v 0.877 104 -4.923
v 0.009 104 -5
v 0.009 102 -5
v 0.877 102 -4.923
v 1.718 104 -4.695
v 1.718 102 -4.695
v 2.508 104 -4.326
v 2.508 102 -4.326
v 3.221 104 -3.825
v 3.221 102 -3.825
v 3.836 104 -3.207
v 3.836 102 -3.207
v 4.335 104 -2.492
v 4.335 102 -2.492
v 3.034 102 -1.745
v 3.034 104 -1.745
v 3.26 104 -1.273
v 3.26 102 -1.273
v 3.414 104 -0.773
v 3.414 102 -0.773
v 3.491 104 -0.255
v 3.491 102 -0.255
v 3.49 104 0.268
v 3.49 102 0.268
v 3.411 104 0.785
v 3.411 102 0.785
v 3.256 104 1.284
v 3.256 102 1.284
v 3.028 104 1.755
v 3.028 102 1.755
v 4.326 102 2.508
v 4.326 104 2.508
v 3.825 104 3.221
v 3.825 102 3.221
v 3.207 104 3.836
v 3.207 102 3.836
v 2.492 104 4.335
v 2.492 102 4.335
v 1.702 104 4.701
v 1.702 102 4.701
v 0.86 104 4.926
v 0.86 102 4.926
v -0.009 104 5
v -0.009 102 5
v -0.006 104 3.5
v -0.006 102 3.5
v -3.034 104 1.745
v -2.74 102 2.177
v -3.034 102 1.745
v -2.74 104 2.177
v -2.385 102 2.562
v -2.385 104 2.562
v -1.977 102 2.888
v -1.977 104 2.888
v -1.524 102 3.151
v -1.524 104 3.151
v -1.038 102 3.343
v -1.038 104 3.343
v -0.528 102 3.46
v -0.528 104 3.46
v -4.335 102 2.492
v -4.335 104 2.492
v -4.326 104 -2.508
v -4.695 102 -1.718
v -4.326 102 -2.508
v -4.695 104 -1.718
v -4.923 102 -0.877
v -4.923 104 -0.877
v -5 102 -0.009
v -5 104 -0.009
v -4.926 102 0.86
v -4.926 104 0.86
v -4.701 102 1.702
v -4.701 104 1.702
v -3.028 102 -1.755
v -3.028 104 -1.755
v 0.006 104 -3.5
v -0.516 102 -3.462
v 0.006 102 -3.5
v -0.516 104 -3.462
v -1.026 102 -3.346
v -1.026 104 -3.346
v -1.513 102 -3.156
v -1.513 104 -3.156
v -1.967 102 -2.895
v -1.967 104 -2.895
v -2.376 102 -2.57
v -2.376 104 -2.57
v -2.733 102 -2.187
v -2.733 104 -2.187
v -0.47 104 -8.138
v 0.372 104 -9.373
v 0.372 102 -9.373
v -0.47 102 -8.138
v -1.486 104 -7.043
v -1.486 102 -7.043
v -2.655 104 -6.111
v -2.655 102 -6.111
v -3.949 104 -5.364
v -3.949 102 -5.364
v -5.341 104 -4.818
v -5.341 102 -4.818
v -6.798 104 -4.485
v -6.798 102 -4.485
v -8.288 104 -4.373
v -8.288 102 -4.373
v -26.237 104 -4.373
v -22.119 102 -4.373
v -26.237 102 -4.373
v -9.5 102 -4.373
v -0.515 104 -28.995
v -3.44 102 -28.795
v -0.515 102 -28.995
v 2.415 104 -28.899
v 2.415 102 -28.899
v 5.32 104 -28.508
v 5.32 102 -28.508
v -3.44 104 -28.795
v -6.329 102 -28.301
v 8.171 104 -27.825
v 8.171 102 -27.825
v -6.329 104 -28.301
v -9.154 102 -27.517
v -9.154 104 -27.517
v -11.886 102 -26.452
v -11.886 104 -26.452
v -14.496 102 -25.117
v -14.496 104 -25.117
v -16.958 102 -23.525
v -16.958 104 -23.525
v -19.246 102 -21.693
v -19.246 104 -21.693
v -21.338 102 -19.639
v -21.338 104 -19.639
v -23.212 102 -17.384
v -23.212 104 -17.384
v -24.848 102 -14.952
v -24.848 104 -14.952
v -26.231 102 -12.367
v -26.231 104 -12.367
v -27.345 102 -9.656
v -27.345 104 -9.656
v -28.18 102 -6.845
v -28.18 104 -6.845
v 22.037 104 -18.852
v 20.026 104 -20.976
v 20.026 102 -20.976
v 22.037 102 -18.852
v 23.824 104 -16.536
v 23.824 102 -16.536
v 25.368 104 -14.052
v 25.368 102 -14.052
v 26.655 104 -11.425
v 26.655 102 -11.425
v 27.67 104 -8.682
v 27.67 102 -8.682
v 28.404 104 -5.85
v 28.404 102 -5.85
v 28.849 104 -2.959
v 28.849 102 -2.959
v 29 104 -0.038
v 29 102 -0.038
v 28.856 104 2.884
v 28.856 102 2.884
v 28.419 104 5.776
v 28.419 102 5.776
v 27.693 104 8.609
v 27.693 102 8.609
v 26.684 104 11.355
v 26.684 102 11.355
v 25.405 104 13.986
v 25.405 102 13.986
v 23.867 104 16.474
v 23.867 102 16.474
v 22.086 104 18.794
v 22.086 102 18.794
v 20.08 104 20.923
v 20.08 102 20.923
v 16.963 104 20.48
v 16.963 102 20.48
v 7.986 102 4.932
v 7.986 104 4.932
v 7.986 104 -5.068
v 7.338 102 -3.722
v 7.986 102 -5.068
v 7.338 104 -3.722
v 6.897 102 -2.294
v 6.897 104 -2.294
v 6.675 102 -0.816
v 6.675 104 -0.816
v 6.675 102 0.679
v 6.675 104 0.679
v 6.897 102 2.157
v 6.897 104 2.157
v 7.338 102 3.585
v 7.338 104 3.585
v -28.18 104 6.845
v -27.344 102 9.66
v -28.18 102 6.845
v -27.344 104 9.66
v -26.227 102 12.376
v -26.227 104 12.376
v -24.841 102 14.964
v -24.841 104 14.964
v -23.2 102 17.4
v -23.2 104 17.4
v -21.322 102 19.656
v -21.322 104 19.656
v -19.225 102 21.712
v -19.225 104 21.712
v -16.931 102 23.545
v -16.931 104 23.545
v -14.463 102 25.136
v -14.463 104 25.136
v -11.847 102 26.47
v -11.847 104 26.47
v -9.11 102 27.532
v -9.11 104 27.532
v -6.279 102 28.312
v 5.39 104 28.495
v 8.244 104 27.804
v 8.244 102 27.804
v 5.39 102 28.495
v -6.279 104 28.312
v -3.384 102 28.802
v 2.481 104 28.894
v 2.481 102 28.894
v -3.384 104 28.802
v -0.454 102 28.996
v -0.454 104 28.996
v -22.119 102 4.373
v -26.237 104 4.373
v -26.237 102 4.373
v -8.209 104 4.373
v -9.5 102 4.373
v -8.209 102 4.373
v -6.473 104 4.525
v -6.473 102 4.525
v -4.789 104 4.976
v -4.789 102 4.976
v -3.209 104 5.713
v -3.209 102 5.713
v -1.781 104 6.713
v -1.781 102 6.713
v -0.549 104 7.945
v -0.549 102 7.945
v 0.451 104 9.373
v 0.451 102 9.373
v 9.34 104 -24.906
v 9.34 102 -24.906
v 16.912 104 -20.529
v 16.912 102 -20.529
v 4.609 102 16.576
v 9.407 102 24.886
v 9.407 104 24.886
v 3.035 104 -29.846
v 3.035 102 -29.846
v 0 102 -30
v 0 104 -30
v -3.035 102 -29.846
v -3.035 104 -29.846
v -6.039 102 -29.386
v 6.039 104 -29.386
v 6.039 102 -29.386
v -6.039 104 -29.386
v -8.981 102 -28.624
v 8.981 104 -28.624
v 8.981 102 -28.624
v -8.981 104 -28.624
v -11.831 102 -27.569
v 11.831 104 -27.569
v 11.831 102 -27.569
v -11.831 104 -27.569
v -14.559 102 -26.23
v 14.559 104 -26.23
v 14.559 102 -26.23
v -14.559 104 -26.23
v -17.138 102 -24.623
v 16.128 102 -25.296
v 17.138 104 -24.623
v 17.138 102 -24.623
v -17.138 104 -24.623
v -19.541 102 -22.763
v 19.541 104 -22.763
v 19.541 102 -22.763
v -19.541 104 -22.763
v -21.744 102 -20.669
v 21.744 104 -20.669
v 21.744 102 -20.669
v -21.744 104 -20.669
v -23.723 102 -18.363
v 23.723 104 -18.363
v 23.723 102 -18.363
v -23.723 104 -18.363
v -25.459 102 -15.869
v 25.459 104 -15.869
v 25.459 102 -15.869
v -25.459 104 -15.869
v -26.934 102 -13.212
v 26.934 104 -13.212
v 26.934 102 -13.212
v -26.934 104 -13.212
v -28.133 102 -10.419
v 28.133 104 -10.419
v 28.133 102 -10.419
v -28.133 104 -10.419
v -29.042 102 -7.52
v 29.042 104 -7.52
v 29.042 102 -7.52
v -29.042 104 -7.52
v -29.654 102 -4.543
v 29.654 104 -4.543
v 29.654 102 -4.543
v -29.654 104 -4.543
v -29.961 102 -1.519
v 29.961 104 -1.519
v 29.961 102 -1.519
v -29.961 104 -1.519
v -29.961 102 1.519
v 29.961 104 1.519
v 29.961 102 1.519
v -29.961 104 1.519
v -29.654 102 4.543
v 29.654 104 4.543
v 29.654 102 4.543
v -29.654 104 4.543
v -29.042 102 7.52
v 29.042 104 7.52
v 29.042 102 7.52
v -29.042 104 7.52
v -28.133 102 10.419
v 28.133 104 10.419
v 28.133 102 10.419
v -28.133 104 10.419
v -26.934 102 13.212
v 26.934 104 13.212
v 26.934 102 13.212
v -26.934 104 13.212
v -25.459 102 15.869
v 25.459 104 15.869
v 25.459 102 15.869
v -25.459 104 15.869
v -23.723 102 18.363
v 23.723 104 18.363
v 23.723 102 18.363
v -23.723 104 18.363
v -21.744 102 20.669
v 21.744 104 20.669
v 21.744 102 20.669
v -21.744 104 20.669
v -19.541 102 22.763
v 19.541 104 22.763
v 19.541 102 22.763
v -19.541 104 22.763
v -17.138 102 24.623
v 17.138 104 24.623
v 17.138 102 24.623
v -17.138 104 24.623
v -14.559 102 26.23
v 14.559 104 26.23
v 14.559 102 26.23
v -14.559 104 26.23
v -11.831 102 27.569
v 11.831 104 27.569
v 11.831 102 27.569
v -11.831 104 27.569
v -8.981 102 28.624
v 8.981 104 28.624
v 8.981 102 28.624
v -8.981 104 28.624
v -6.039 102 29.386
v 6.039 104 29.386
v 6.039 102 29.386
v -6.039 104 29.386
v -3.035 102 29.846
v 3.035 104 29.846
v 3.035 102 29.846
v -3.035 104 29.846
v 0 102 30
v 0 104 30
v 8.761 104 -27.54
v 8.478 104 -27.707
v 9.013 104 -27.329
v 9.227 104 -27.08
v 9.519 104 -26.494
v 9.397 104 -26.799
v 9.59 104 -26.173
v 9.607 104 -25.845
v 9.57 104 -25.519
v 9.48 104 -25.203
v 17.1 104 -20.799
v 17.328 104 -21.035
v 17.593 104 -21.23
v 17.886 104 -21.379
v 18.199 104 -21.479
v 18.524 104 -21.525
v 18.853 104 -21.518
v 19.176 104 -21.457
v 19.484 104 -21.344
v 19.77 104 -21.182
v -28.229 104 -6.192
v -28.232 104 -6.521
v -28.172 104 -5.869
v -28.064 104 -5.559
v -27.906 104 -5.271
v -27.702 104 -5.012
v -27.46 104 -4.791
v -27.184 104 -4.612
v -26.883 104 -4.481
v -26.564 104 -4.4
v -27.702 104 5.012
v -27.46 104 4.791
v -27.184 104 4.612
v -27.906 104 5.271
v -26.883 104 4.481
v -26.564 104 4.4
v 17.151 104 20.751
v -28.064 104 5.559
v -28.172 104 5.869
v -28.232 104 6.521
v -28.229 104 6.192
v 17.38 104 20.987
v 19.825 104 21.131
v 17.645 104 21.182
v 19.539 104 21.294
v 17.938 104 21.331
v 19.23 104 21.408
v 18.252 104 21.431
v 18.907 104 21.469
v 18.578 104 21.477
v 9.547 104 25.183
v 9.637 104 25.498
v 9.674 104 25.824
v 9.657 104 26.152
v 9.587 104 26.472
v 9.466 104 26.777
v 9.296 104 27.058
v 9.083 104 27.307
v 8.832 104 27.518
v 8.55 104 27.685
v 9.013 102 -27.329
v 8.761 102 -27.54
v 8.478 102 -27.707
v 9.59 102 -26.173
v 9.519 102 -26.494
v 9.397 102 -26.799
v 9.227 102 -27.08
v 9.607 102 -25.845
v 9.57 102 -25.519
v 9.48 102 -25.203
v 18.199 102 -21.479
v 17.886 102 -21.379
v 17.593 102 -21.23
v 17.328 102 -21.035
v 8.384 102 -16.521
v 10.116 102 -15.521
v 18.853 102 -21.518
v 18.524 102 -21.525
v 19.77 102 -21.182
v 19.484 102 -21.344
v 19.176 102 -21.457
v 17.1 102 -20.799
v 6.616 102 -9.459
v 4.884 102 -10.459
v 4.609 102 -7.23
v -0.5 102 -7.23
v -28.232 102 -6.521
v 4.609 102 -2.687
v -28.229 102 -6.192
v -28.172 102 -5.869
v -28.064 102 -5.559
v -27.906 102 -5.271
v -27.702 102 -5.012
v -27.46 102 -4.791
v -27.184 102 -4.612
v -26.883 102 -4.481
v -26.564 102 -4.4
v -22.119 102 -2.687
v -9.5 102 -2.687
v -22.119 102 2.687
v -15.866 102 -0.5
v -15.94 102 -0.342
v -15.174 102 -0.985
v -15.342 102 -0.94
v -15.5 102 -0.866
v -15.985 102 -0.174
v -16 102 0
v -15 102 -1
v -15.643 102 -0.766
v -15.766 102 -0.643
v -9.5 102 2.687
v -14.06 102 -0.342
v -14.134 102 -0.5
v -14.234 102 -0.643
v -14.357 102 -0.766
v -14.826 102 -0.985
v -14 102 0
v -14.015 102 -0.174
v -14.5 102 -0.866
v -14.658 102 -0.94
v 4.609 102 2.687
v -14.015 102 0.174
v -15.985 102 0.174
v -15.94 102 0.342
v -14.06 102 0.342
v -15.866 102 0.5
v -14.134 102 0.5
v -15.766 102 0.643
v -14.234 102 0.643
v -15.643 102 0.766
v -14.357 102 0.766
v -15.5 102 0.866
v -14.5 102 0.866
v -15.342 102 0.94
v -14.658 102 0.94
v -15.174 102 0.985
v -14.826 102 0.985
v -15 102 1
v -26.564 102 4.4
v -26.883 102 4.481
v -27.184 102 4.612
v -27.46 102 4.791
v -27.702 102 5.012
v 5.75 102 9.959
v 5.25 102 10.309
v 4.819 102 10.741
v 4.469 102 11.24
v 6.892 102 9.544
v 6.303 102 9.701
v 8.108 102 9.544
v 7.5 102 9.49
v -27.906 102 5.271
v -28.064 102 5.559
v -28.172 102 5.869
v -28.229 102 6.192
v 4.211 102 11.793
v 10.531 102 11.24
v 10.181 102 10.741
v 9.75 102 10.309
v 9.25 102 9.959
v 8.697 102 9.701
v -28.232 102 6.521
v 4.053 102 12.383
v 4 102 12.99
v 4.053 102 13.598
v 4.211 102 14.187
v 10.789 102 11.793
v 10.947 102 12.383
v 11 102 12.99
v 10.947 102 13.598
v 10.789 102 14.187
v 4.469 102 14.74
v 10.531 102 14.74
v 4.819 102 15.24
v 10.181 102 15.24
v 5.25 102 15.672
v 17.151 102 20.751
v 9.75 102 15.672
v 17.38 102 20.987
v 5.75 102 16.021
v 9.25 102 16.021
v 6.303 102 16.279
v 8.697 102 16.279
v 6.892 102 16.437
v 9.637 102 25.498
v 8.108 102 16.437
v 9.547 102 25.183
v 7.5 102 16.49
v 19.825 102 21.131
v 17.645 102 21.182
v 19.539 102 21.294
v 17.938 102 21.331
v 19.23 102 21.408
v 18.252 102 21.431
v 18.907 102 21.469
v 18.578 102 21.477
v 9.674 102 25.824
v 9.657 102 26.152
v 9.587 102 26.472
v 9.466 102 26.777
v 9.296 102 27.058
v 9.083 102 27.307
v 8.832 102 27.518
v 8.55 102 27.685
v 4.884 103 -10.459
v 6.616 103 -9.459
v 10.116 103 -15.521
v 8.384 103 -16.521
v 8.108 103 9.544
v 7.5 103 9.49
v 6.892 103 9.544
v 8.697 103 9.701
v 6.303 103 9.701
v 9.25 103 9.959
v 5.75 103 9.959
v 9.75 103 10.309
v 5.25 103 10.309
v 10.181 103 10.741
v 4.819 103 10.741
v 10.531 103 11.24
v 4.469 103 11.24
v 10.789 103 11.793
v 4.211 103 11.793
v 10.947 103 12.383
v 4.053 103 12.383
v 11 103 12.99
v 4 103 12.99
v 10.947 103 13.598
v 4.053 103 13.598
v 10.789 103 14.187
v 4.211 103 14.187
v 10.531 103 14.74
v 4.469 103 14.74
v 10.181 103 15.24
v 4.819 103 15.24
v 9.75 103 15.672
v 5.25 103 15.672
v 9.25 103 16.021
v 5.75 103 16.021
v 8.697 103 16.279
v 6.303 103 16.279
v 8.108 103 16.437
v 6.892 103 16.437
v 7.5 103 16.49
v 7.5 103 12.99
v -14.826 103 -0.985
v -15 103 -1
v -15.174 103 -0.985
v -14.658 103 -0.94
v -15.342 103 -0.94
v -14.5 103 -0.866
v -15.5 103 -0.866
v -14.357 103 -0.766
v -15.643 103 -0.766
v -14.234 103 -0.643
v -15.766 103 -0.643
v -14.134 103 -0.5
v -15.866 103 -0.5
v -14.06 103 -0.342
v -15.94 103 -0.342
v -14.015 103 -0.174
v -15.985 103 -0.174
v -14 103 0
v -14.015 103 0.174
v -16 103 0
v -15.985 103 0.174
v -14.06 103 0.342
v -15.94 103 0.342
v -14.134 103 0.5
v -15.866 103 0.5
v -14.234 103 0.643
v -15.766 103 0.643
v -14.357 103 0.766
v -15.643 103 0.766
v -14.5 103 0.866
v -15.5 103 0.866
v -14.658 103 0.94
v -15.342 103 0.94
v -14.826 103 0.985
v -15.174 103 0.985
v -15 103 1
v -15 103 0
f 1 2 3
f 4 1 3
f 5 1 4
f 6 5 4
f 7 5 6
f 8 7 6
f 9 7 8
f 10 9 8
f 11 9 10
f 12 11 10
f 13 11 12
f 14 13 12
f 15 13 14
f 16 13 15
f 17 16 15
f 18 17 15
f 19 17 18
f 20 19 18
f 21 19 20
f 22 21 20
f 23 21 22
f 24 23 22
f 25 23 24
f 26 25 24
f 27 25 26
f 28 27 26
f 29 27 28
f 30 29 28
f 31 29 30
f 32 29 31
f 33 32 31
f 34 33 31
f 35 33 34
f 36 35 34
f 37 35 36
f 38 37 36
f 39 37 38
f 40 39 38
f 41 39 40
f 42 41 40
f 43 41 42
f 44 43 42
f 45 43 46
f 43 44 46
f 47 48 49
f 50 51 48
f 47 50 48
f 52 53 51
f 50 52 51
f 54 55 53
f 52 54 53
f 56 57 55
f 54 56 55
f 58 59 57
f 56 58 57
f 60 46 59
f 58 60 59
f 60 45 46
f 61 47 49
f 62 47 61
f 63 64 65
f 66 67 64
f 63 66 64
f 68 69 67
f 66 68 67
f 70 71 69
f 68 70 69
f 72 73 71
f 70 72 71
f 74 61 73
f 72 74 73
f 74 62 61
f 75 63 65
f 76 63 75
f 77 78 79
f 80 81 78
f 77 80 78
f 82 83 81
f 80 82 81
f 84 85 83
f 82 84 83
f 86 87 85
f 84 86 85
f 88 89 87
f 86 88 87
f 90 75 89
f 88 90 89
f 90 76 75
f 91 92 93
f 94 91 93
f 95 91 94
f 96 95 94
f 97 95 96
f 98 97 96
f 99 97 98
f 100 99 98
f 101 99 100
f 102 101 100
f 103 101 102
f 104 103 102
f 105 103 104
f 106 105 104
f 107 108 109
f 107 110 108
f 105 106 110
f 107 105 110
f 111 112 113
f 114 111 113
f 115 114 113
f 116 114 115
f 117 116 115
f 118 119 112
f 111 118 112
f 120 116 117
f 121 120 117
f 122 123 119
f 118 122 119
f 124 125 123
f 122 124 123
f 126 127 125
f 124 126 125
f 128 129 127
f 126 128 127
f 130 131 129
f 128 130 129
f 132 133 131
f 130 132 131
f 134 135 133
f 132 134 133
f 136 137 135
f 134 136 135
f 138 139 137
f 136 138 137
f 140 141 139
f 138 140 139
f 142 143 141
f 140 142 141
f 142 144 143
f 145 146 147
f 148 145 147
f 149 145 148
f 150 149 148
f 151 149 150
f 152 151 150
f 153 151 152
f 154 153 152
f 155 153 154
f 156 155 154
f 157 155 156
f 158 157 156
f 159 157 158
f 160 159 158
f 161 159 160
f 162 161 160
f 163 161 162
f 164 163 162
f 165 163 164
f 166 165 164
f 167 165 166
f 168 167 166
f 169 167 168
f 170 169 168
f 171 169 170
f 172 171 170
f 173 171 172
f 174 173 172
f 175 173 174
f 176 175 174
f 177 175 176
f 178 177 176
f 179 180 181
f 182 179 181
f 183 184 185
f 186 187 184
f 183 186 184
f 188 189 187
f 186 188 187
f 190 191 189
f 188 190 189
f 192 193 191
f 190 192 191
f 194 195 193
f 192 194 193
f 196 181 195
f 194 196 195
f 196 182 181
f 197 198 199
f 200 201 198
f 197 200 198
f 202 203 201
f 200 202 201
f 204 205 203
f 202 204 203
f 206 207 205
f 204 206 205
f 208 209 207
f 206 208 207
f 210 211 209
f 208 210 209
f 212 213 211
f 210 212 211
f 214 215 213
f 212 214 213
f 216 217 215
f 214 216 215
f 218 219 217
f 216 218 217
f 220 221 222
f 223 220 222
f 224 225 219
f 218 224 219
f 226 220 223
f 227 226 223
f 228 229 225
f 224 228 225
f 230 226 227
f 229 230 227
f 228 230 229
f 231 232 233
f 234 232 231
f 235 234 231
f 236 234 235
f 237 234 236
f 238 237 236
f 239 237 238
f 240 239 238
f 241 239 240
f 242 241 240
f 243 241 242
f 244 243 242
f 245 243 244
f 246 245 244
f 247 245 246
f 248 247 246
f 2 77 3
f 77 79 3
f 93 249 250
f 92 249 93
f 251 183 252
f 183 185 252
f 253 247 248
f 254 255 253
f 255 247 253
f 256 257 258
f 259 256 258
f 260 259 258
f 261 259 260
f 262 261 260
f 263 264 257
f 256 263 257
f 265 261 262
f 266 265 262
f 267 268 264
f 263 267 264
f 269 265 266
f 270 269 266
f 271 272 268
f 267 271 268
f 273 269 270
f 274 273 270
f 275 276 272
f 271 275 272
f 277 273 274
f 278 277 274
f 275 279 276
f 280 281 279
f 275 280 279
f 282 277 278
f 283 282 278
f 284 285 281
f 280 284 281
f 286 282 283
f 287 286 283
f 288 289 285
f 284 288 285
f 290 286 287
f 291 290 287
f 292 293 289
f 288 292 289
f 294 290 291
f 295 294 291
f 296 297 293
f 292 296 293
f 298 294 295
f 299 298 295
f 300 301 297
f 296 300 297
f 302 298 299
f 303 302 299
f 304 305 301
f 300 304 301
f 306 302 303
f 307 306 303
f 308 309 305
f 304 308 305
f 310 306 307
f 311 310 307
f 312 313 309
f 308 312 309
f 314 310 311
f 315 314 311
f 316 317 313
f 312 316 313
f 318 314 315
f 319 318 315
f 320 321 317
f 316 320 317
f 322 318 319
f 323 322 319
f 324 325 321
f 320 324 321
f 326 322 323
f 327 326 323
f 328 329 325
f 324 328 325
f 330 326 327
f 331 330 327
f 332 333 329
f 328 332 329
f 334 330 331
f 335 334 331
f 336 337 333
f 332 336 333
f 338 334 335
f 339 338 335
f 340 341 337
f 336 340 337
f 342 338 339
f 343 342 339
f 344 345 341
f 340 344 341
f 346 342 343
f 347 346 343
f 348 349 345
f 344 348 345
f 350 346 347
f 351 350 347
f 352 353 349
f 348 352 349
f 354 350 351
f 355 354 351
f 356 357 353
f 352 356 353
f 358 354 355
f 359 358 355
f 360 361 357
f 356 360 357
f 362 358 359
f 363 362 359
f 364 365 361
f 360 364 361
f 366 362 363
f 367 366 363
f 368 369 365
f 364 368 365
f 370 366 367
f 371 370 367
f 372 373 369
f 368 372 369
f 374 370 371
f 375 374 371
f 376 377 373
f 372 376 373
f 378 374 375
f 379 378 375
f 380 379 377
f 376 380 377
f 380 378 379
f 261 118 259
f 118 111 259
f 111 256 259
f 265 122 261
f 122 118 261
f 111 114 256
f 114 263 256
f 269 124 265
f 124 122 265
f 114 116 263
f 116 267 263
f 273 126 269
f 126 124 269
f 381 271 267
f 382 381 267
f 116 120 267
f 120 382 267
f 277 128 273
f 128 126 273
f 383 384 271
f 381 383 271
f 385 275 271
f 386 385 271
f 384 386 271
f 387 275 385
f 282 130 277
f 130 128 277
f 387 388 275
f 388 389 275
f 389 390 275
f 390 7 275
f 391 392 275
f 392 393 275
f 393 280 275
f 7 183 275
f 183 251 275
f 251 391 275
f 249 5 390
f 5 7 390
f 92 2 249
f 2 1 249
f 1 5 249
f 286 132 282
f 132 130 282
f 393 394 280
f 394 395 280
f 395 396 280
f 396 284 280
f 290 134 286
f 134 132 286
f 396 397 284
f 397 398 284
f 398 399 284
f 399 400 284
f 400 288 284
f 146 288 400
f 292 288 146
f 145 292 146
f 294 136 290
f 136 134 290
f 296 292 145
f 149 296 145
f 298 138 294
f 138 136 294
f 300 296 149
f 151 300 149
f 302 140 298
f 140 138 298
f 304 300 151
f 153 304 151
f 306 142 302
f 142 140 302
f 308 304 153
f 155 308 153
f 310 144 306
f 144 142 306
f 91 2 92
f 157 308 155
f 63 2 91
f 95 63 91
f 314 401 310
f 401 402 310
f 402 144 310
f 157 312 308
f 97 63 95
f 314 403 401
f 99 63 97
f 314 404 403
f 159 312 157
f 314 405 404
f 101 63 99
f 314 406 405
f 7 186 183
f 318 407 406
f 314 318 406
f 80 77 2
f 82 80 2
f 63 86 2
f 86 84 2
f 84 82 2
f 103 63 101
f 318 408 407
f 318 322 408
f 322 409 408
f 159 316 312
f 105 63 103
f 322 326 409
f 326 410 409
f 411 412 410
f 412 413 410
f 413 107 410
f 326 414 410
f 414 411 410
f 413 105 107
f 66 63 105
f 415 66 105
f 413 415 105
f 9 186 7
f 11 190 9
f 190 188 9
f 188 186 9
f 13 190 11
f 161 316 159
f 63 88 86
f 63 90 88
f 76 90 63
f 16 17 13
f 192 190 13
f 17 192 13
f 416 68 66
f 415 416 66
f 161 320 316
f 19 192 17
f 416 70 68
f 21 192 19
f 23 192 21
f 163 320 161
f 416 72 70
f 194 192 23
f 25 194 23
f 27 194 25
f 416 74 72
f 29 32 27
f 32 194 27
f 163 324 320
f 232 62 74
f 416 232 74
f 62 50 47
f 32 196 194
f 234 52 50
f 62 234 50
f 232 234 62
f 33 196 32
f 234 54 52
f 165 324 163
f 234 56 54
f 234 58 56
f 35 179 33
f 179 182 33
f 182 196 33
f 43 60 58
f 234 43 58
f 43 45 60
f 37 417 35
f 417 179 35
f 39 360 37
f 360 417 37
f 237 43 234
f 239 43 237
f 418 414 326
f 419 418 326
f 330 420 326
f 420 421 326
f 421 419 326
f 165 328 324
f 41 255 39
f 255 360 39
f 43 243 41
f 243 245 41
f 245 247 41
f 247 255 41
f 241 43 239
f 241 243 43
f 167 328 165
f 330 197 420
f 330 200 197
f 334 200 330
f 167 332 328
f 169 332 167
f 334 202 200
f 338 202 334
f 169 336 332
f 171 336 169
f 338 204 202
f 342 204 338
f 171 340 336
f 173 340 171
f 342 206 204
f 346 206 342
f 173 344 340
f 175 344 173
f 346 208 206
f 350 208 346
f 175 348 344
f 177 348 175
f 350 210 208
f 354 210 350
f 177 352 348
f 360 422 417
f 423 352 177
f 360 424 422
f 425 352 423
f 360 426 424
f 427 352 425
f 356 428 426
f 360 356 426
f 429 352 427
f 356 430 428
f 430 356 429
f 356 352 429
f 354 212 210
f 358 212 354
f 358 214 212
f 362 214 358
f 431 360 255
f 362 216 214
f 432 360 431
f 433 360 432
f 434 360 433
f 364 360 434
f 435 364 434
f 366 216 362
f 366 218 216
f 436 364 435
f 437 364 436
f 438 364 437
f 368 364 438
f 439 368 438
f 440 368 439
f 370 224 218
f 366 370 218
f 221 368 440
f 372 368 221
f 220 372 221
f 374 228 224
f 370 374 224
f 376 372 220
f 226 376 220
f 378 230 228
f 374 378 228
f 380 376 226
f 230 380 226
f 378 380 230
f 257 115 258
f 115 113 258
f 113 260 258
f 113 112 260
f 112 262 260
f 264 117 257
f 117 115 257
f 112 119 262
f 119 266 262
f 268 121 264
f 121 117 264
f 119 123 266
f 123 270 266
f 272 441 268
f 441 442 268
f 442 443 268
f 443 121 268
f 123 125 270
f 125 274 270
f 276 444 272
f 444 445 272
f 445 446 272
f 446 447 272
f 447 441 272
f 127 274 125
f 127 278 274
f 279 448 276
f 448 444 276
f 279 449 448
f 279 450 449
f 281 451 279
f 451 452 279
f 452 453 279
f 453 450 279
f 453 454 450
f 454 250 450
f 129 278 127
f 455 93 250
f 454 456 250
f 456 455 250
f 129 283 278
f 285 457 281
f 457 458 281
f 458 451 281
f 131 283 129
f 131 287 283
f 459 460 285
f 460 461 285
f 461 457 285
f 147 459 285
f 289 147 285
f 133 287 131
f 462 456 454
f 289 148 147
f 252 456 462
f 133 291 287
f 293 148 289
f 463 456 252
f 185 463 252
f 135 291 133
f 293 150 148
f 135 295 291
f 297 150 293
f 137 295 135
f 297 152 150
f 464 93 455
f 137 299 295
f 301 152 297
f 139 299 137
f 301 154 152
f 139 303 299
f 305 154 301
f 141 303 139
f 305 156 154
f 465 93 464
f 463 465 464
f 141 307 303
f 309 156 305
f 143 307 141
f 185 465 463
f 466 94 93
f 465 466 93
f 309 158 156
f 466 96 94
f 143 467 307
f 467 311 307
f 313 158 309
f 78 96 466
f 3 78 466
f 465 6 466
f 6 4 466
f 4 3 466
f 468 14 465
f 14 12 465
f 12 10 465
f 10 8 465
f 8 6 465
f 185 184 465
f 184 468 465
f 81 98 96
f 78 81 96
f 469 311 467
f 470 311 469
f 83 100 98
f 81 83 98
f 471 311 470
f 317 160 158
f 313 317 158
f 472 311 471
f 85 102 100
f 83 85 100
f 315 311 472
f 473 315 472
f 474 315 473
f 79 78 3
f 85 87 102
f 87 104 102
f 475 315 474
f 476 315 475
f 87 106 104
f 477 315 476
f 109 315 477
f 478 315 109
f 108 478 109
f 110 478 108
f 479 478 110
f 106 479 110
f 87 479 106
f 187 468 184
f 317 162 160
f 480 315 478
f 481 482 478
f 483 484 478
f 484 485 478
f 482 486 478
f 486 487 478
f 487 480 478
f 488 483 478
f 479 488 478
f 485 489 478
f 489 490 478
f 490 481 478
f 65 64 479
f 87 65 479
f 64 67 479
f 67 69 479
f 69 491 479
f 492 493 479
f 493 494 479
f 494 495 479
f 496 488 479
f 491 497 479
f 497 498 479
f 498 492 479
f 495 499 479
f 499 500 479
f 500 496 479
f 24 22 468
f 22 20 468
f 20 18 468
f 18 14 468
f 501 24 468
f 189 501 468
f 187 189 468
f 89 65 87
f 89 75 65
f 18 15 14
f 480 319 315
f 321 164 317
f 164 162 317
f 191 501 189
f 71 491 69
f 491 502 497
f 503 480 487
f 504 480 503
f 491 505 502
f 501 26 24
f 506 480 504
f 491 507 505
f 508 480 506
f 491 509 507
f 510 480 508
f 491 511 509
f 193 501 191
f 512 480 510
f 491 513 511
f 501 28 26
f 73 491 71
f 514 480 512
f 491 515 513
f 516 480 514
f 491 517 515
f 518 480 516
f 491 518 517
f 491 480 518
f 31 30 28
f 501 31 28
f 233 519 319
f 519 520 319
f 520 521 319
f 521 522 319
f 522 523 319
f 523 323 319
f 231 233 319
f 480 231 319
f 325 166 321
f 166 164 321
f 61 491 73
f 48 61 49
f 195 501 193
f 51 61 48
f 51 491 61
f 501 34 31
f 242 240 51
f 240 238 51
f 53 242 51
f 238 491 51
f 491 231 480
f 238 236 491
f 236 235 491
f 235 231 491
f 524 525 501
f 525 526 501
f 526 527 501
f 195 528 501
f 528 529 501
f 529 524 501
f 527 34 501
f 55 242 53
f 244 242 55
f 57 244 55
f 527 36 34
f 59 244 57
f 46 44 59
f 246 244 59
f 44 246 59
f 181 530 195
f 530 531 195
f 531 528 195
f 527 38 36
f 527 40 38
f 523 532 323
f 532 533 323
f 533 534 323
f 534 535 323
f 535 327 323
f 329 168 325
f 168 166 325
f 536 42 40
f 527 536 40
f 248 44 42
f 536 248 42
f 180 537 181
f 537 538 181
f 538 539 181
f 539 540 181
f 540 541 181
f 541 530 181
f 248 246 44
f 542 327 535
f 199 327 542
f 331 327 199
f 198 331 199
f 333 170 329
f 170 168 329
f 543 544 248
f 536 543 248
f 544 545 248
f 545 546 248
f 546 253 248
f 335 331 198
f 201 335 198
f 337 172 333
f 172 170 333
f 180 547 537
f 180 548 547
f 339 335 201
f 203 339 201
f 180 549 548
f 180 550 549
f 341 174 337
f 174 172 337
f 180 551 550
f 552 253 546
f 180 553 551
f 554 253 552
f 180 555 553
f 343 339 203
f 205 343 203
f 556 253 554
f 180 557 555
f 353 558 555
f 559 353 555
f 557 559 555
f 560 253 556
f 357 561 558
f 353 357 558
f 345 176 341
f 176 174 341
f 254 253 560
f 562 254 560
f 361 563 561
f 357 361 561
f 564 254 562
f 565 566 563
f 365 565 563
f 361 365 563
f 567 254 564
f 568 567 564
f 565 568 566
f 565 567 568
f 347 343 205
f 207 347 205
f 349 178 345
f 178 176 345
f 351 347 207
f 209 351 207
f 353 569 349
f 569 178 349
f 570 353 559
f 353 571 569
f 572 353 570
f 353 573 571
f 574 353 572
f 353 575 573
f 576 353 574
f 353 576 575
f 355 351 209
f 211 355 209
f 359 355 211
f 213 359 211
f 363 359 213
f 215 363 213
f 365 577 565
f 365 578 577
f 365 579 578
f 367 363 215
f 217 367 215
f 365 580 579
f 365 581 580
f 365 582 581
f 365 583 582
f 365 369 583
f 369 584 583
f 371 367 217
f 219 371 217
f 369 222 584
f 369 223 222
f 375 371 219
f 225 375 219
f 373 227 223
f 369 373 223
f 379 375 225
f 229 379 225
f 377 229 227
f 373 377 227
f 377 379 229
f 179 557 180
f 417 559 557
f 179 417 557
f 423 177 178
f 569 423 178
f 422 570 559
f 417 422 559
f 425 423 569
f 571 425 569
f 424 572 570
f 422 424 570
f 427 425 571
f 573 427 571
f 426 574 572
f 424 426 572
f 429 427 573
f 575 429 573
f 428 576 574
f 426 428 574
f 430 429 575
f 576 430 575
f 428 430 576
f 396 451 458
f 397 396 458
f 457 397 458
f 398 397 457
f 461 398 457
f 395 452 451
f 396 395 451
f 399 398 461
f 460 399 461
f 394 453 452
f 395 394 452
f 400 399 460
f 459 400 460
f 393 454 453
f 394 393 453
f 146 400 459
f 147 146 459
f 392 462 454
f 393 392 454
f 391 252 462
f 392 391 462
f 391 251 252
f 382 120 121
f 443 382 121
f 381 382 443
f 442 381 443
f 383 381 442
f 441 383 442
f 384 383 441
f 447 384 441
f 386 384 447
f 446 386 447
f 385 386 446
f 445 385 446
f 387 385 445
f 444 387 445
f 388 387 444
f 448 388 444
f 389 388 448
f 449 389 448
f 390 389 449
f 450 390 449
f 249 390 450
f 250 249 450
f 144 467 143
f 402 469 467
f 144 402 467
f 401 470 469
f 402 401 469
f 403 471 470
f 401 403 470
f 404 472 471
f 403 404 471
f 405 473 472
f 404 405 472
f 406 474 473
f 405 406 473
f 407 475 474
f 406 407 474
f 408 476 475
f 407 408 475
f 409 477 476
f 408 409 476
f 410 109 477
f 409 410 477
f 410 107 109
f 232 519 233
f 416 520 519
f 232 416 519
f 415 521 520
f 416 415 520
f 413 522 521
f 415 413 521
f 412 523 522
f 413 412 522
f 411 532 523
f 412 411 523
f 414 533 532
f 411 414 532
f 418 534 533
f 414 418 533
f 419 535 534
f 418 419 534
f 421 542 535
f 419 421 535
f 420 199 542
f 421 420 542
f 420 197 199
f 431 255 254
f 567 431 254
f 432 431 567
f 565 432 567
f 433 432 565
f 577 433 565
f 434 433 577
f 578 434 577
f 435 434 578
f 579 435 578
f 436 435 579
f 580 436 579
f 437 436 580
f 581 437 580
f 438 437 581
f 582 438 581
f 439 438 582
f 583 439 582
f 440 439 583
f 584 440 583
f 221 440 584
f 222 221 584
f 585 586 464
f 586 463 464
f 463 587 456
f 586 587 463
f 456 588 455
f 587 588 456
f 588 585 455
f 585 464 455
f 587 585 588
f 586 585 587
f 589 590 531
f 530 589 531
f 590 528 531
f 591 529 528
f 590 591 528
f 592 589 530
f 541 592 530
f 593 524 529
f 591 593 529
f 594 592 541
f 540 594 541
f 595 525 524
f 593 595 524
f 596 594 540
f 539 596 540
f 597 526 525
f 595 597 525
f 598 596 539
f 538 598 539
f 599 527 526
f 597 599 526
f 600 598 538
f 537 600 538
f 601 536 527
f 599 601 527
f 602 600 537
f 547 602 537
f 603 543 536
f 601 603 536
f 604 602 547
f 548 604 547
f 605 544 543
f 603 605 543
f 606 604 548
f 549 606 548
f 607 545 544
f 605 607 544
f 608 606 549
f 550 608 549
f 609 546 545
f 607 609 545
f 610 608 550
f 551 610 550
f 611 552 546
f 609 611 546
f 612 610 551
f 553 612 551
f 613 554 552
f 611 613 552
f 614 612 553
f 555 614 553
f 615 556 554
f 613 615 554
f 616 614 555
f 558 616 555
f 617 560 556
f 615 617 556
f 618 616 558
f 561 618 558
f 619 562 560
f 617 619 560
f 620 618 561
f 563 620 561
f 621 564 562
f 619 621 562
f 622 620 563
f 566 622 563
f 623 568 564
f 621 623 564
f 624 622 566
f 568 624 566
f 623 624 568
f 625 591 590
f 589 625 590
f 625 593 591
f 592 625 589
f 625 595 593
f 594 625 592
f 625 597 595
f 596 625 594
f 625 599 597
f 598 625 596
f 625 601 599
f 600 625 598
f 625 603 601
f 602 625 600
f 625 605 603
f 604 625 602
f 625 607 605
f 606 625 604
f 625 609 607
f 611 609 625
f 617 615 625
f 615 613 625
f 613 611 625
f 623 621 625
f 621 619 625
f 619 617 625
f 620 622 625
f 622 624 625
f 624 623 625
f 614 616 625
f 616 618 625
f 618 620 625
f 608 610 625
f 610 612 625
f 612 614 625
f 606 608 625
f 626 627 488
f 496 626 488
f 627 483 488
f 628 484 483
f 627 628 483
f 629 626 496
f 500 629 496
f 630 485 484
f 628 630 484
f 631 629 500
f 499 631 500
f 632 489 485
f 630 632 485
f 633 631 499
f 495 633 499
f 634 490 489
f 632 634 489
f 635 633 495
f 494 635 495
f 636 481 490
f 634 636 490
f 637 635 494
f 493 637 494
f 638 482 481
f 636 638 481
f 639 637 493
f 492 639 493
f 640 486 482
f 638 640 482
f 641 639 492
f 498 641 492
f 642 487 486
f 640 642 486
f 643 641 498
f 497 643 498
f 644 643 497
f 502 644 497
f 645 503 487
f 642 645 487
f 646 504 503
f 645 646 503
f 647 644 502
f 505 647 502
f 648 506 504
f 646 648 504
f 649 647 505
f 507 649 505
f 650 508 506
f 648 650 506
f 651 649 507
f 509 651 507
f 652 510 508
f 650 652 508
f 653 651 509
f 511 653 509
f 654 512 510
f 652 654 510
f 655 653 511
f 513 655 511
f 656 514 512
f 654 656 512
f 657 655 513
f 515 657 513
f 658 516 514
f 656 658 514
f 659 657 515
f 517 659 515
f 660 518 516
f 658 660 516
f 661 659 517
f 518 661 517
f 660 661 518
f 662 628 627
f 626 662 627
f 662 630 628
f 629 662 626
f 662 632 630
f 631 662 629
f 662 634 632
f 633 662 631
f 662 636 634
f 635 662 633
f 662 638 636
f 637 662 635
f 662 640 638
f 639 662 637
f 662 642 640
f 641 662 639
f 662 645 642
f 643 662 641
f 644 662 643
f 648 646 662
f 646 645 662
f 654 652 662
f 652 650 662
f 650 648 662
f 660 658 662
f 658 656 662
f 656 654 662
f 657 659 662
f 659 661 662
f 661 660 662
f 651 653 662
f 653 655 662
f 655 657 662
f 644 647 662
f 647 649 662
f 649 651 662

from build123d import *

# Parameters (mm, degrees)
SKETCH1_R           = 46.5
SKETCH1_R_2         = 6.5
SKETCH1_R_3         = 10
SKETCH1_R_4         = 3.5
BOSS_EXTRUDE1_DEPTH = 2
SKETCH3_R           = 5
SKETCH3_R_2         = 3.5
BOSS_EXTRUDE2_DEPTH = 100
SKETCH4_R           = 30
SKETCH4_R_2         = 29
BOSS_EXTRUDE5_DEPTH = 2
FILLET2_R           = 2
SKETCH5_R           = 1
SKETCH5_R_2         = 3.5
CUT_EXTRUDE1_DEPTH  = 1
SKETCH6_R           = 2
CUT_EXTRUDE2_DEPTH  = 2
CHAMFER2_SIZE       = 0.8
SKETCH7_R           = 61.085714235
CUT_EXTRUDE3_DEPTH  = 122.361031637


with BuildPart() as part:
    # Sketch1 → Boss-Extrude1 (new body)
    with BuildSketch(Plane(origin=(0, 0, 0), x_dir=(1, 0, 0), z_dir=(0, 1, 0))):
        with Locations(Location((0, 0, 0), (0, 0, 270))):
            Circle(SKETCH1_R)
        with Locations(Location((0, 15, 0), (0, 0, 270))):
            Circle(SKETCH1_R_2, mode=Mode.SUBTRACT)
        with Locations(Location((-12.990381057, -7.5, 0), (0, 0, 270))):
            Circle(SKETCH1_R_3, mode=Mode.SUBTRACT)
        with Locations(Location((12.990381057, -7.5, 0), (0, 0, 270))):
            Circle(SKETCH1_R_4, mode=Mode.SUBTRACT)
        with Locations(Location((0, 0, 0), (0, 0, 270))):
            Circle(SKETCH1_R_4, mode=Mode.SUBTRACT)
    extrude(amount=BOSS_EXTRUDE1_DEPTH)

    # Sketch3 → Boss-Extrude2 (add)
    with BuildSketch(Plane(origin=(0, 2, 0), x_dir=(1, 0, 0), z_dir=(0, 1, 0))):
        with Locations(Location((0, 0, 0), (0, 0, 210))):
            Circle(SKETCH3_R)
        with Locations(Location((0, 0, 0), (0, 0, 270))):
            Circle(SKETCH3_R_2, mode=Mode.SUBTRACT)
    extrude(amount=BOSS_EXTRUDE2_DEPTH)

    # Sketch6 → Cut-Extrude2 (cut)
    with BuildSketch(Plane.XZ):
        with Locations(Location((0, 35, 0), (0, 0, 270))):
            Circle(SKETCH6_R)
        with Locations(Location((27.364101886, 21.822143065, 0), (0, 0, 270))):
            Circle(SKETCH6_R)
        with Locations(Location((34.122476926, -7.788232688, 0), (0, 0, 270))):
            Circle(SKETCH6_R)
        with Locations(Location((15.185930869, -31.533910377, 0), (0, 0, 270))):
            Circle(SKETCH6_R)
        with Locations(Location((-15.185930869, -31.533910377, 0), (0, 0, 270))):
            Circle(SKETCH6_R)
        with Locations(Location((-34.122476926, -7.788232688, 0), (0, 0, 270))):
            Circle(SKETCH6_R)
        with Locations(Location((-27.364101886, 21.822143065, 0), (0, 0, 270))):
            Circle(SKETCH6_R)
    extrude(amount=-CUT_EXTRUDE2_DEPTH, mode=Mode.SUBTRACT)

    # Chamfer2
    chamfer2_edges = [part.edges().sort_by_distance(p)[0] for p in [
        (12.990381057, 0, 4),
        (34.122476926, 0, -5.788232688),
        (27.364101886, 0, 23.822143065),
        (0, 0, 37),
        (-27.364101886, 0, 23.822143065),
        (-34.122476926, 0, -5.788232688),
        (-15.185930869, 0, -29.533910377),
        (15.185930869, 0, -29.533910377),
    ]]
    chamfer(chamfer2_edges, length=CHAMFER2_SIZE)

    # Sketch7 → Cut-Extrude3 (cut, through all)
    with BuildSketch(Plane.XZ.offset(-102)):
        Circle(SKETCH7_R)
    extrude(amount=CUT_EXTRUDE3_DEPTH, mode=Mode.SUBTRACT)


with BuildPart() as body_2:
    # Sketch4 → Boss-Extrude5 (new body)
    # profile 1 of 11: a face of its own
    with BuildSketch(Plane(origin=(0, 102, 0), x_dir=(1, 0, 0), z_dir=(0, 1, 0))):
        with Locations(Location((0, 0, 0), (0, 0, 270))):
            Circle(SKETCH4_R)
        Circle(SKETCH4_R_2, mode=Mode.SUBTRACT)
    # profile 2 of 11: a face of its own
    with BuildSketch(Plane(origin=(0, 102, 0), x_dir=(1, 0, 0), z_dir=(0, 1, 0))):
        with BuildLine():
            ThreePointArc((0.372035902, 9.373321886), (-3.288218135, 5.713067848), (-8.288218135, 4.373321886))
            Line((-8.288218135, 4.373321886), (-28.668345883, 4.373321886))
            ThreePointArc((-28.668345883, 4.373321886), (-29, 0), (-28.668345883, -4.373321886))
            Line((-28.668345883, -4.373321886), (-8.209333805, -4.373321886))
            ThreePointArc((-8.209333805, -4.373321886), (-3.209333805, -5.713067848), (0.450920232, -9.373321886))
            Line((0.450920232, -9.373321886), (10.619428606, -26.985695027))
            ThreePointArc((10.619428606, -26.985695027), (14.567551204, -25.075614687), (18.182472179, -22.591983212))
            Line((18.182472179, -22.591983212), (7.986293771, -4.931684166))
            ThreePointArc((7.986293771, -4.931684166), (6.646547809, 0.068315834), (7.986293771, 5.068315834))
            Line((7.986293771, 5.068315834), (18.128572143, 22.635257278))
            ThreePointArc((18.128572143, 22.635257278), (14.507755353, 25.110257558), (10.555107028, 27.010918452))
            Line((10.555107028, 27.010918452), (0.372035902, 9.373321886))
        make_face()
        with BuildLine():
            ThreePointArc((-4.421197961, -2.542244793), (-5.099992146, 0.008950407), (-4.412247554, 2.557747353))
            ThreePointArc((-4.412247554, 2.557747353), (-2.542244793, 4.421197961), (0.008950407, 5.099992146))
            ThreePointArc((0.008950407, 5.099992146), (2.557747353, 4.412247554), (4.421197961, 2.542244793))
            ThreePointArc((4.421197961, 2.542244793), (4.927378086, 1.315653905), (5.1, 0))
            ThreePointArc((5.1, 0), (4.925061549, -1.324299338), (4.412247554, -2.557747353))
            ThreePointArc((4.412247554, -2.557747353), (2.542244793, -4.421197961), (-0.008950407, -5.099992146))
            ThreePointArc((-0.008950407, -5.099992146), (-2.557747353, -4.412247554), (-4.421197961, -2.542244793))
        make_face(mode=Mode.SUBTRACT)
    # profile 3 of 11: a face of its own
    with BuildSketch(Plane(origin=(0, 102, 0), x_dir=(1, 0, 0), z_dir=(0, 1, 0))):
        with BuildLine():
            Line((-0.008950407, -5.099992146), (-0.008774909, -4.9999923))
            ThreePointArc((-0.008774909, -4.9999923), (-2.507595444, -4.325732896), (-4.334507805, -2.492396856))
            Line((-4.334507805, -2.492396856), (-4.421197961, -2.542244793))
            ThreePointArc((-4.421197961, -2.542244793), (-2.557747353, -4.412247554), (-0.008950407, -5.099992146))
        make_face()
    # profile 4 of 11: a face of its own
    with BuildSketch(Plane(origin=(0, 102, 0), x_dir=(1, 0, 0), z_dir=(0, 1, 0))):
        with BuildLine():
            Line((-4.412247554, 2.557747353), (-4.325732896, 2.507595444))
            ThreePointArc((-4.325732896, 2.507595444), (-2.492396856, 4.334507805), (0.008774909, 4.9999923))
            Line((0.008774909, 4.9999923), (0.008950407, 5.099992146))
            ThreePointArc((0.008950407, 5.099992146), (-2.542244793, 4.421197961), (-4.412247554, 2.557747353))
        make_face()
    # profile 5 of 11: a face of its own
    with BuildSketch(Plane(origin=(0, 102, 0), x_dir=(1, 0, 0), z_dir=(0, 1, 0))):
        with BuildLine():
            Line((4.421197961, 2.542244793), (4.334507805, 2.492396856))
            ThreePointArc((4.334507805, 2.492396856), (4.830762829, 1.28985677), (5, 0))
            ThreePointArc((5, 0), (4.828491715, -1.298332685), (4.325732896, -2.507595444))
            Line((4.325732896, -2.507595444), (4.412247554, -2.557747353))
            ThreePointArc((4.412247554, -2.557747353), (4.925061549, -1.324299338), (5.1, 0))
            ThreePointArc((5.1, 0), (4.927378086, 1.315653905), (4.421197961, 2.542244793))
        make_face()
    # profile 6 of 11: a face of its own
    with BuildSketch(Plane(origin=(0, 102, 0), x_dir=(1, 0, 0), z_dir=(0, 1, 0))):
        with BuildLine():
            ThreePointArc((-4.334507805, -2.492396856), (-4.9999923, 0.008774909), (-4.325732896, 2.507595444))
            Line((-4.325732896, 2.507595444), (-4.412247554, 2.557747353))
            ThreePointArc((-4.412247554, 2.557747353), (-5.099992146, 0.008950407), (-4.421197961, -2.542244793))
            Line((-4.421197961, -2.542244793), (-4.334507805, -2.492396856))
        make_face()
    # profile 7 of 11: a face of its own
    with BuildSketch(Plane(origin=(0, 102, 0), x_dir=(1, 0, 0), z_dir=(0, 1, 0))):
        with BuildLine():
            Line((4.412247554, -2.557747353), (4.325732896, -2.507595444))
            ThreePointArc((4.325732896, -2.507595444), (2.492396856, -4.334507805), (-0.008774909, -4.9999923))
            Line((-0.008774909, -4.9999923), (-0.008950407, -5.099992146))
            ThreePointArc((-0.008950407, -5.099992146), (2.542244793, -4.421197961), (4.412247554, -2.557747353))
        make_face()
    # profile 8 of 11: a face of its own
    with BuildSketch(Plane(origin=(0, 102, 0), x_dir=(1, 0, 0), z_dir=(0, 1, 0))):
        with BuildLine():
            Line((0.008950407, 5.099992146), (0.008774909, 4.9999923))
            ThreePointArc((0.008774909, 4.9999923), (2.507595444, 4.325732896), (4.334507805, 2.492396856))
            Line((4.334507805, 2.492396856), (4.421197961, 2.542244793))
            ThreePointArc((4.421197961, 2.542244793), (2.557747353, 4.412247554), (0.008950407, 5.099992146))
        make_face()
    # profile 9 of 11: a face of its own
    with BuildSketch(Plane(origin=(0, 102, 0), x_dir=(1, 0, 0), z_dir=(0, 1, 0))):
        with BuildLine():
            Line((-4.325732896, 2.507595444), (-3.028013027, 1.755316811))
            ThreePointArc((-3.028013027, 1.755316811), (-1.744677799, 3.034155464), (0.006142436, 3.49999461))
            Line((0.006142436, 3.49999461), (0.008774909, 4.9999923))
            ThreePointArc((0.008774909, 4.9999923), (-2.492396856, 4.334507805), (-4.325732896, 2.507595444))
        make_face()
    # profile 10 of 11: a face of its own
    with BuildSketch(Plane(origin=(0, 102, 0), x_dir=(1, 0, 0), z_dir=(0, 1, 0))):
        with BuildLine():
            Line((-0.008774909, -4.9999923), (-0.006142436, -3.49999461))
            ThreePointArc((-0.006142436, -3.49999461), (-1.755316811, -3.028013027), (-3.034155464, -1.744677799))
            Line((-3.034155464, -1.744677799), (-4.334507805, -2.492396856))
            ThreePointArc((-4.334507805, -2.492396856), (-2.507595444, -4.325732896), (-0.008774909, -4.9999923))
        make_face()
    # profile 11 of 11: a face of its own
    with BuildSketch(Plane(origin=(0, 102, 0), x_dir=(1, 0, 0), z_dir=(0, 1, 0))):
        with BuildLine():
            Line((4.334507805, 2.492396856), (3.034155464, 1.744677799))
            ThreePointArc((3.034155464, 1.744677799), (3.38153398, 0.902899739), (3.5, 0))
            ThreePointArc((3.5, 0), (3.3799442, -0.908832879), (3.028013027, -1.755316811))
            Line((3.028013027, -1.755316811), (4.325732896, -2.507595444))
            ThreePointArc((4.325732896, -2.507595444), (4.828491715, -1.298332685), (5, 0))
            ThreePointArc((5, 0), (4.830762829, 1.28985677), (4.334507805, 2.492396856))
        make_face()
    extrude(amount=BOSS_EXTRUDE5_DEPTH)

    # Fillet2
    fillet2_edges = [body_2.edges().sort_by_distance(p)[0] for p in [
        (10.555107028, 103, -27.010918452),
        (-28.668345883, 103, -4.373321886),
        (18.128572143, 103, -22.635257278),
        (18.182472179, 103, 22.591983212),
        (10.619428606, 103, 26.985695027),
        (-28.668345883, 103, 4.373321886),
    ]]
    fillet(fillet2_edges, radius=FILLET2_R)

    # Sketch5 → Cut-Extrude1 (cut)
    with BuildSketch(Plane.XZ.offset(-102)):
        with Locations(Location((-15, 0, 0), (0, 0, 270))):
            Circle(SKETCH5_R)
        with Locations(Location((7.5, 12.990381057, 0), (0, 0, 270))):
            Circle(SKETCH5_R_2)
        Polygon((8.383974596, -16.52146997), (4.883974596, -10.459292144), (6.616025404, -9.459292144), (10.116025404, -15.52146997), align=None)
    extrude(amount=-CUT_EXTRUDE1_DEPTH, mode=Mode.SUBTRACT)


solid = body_2.part
